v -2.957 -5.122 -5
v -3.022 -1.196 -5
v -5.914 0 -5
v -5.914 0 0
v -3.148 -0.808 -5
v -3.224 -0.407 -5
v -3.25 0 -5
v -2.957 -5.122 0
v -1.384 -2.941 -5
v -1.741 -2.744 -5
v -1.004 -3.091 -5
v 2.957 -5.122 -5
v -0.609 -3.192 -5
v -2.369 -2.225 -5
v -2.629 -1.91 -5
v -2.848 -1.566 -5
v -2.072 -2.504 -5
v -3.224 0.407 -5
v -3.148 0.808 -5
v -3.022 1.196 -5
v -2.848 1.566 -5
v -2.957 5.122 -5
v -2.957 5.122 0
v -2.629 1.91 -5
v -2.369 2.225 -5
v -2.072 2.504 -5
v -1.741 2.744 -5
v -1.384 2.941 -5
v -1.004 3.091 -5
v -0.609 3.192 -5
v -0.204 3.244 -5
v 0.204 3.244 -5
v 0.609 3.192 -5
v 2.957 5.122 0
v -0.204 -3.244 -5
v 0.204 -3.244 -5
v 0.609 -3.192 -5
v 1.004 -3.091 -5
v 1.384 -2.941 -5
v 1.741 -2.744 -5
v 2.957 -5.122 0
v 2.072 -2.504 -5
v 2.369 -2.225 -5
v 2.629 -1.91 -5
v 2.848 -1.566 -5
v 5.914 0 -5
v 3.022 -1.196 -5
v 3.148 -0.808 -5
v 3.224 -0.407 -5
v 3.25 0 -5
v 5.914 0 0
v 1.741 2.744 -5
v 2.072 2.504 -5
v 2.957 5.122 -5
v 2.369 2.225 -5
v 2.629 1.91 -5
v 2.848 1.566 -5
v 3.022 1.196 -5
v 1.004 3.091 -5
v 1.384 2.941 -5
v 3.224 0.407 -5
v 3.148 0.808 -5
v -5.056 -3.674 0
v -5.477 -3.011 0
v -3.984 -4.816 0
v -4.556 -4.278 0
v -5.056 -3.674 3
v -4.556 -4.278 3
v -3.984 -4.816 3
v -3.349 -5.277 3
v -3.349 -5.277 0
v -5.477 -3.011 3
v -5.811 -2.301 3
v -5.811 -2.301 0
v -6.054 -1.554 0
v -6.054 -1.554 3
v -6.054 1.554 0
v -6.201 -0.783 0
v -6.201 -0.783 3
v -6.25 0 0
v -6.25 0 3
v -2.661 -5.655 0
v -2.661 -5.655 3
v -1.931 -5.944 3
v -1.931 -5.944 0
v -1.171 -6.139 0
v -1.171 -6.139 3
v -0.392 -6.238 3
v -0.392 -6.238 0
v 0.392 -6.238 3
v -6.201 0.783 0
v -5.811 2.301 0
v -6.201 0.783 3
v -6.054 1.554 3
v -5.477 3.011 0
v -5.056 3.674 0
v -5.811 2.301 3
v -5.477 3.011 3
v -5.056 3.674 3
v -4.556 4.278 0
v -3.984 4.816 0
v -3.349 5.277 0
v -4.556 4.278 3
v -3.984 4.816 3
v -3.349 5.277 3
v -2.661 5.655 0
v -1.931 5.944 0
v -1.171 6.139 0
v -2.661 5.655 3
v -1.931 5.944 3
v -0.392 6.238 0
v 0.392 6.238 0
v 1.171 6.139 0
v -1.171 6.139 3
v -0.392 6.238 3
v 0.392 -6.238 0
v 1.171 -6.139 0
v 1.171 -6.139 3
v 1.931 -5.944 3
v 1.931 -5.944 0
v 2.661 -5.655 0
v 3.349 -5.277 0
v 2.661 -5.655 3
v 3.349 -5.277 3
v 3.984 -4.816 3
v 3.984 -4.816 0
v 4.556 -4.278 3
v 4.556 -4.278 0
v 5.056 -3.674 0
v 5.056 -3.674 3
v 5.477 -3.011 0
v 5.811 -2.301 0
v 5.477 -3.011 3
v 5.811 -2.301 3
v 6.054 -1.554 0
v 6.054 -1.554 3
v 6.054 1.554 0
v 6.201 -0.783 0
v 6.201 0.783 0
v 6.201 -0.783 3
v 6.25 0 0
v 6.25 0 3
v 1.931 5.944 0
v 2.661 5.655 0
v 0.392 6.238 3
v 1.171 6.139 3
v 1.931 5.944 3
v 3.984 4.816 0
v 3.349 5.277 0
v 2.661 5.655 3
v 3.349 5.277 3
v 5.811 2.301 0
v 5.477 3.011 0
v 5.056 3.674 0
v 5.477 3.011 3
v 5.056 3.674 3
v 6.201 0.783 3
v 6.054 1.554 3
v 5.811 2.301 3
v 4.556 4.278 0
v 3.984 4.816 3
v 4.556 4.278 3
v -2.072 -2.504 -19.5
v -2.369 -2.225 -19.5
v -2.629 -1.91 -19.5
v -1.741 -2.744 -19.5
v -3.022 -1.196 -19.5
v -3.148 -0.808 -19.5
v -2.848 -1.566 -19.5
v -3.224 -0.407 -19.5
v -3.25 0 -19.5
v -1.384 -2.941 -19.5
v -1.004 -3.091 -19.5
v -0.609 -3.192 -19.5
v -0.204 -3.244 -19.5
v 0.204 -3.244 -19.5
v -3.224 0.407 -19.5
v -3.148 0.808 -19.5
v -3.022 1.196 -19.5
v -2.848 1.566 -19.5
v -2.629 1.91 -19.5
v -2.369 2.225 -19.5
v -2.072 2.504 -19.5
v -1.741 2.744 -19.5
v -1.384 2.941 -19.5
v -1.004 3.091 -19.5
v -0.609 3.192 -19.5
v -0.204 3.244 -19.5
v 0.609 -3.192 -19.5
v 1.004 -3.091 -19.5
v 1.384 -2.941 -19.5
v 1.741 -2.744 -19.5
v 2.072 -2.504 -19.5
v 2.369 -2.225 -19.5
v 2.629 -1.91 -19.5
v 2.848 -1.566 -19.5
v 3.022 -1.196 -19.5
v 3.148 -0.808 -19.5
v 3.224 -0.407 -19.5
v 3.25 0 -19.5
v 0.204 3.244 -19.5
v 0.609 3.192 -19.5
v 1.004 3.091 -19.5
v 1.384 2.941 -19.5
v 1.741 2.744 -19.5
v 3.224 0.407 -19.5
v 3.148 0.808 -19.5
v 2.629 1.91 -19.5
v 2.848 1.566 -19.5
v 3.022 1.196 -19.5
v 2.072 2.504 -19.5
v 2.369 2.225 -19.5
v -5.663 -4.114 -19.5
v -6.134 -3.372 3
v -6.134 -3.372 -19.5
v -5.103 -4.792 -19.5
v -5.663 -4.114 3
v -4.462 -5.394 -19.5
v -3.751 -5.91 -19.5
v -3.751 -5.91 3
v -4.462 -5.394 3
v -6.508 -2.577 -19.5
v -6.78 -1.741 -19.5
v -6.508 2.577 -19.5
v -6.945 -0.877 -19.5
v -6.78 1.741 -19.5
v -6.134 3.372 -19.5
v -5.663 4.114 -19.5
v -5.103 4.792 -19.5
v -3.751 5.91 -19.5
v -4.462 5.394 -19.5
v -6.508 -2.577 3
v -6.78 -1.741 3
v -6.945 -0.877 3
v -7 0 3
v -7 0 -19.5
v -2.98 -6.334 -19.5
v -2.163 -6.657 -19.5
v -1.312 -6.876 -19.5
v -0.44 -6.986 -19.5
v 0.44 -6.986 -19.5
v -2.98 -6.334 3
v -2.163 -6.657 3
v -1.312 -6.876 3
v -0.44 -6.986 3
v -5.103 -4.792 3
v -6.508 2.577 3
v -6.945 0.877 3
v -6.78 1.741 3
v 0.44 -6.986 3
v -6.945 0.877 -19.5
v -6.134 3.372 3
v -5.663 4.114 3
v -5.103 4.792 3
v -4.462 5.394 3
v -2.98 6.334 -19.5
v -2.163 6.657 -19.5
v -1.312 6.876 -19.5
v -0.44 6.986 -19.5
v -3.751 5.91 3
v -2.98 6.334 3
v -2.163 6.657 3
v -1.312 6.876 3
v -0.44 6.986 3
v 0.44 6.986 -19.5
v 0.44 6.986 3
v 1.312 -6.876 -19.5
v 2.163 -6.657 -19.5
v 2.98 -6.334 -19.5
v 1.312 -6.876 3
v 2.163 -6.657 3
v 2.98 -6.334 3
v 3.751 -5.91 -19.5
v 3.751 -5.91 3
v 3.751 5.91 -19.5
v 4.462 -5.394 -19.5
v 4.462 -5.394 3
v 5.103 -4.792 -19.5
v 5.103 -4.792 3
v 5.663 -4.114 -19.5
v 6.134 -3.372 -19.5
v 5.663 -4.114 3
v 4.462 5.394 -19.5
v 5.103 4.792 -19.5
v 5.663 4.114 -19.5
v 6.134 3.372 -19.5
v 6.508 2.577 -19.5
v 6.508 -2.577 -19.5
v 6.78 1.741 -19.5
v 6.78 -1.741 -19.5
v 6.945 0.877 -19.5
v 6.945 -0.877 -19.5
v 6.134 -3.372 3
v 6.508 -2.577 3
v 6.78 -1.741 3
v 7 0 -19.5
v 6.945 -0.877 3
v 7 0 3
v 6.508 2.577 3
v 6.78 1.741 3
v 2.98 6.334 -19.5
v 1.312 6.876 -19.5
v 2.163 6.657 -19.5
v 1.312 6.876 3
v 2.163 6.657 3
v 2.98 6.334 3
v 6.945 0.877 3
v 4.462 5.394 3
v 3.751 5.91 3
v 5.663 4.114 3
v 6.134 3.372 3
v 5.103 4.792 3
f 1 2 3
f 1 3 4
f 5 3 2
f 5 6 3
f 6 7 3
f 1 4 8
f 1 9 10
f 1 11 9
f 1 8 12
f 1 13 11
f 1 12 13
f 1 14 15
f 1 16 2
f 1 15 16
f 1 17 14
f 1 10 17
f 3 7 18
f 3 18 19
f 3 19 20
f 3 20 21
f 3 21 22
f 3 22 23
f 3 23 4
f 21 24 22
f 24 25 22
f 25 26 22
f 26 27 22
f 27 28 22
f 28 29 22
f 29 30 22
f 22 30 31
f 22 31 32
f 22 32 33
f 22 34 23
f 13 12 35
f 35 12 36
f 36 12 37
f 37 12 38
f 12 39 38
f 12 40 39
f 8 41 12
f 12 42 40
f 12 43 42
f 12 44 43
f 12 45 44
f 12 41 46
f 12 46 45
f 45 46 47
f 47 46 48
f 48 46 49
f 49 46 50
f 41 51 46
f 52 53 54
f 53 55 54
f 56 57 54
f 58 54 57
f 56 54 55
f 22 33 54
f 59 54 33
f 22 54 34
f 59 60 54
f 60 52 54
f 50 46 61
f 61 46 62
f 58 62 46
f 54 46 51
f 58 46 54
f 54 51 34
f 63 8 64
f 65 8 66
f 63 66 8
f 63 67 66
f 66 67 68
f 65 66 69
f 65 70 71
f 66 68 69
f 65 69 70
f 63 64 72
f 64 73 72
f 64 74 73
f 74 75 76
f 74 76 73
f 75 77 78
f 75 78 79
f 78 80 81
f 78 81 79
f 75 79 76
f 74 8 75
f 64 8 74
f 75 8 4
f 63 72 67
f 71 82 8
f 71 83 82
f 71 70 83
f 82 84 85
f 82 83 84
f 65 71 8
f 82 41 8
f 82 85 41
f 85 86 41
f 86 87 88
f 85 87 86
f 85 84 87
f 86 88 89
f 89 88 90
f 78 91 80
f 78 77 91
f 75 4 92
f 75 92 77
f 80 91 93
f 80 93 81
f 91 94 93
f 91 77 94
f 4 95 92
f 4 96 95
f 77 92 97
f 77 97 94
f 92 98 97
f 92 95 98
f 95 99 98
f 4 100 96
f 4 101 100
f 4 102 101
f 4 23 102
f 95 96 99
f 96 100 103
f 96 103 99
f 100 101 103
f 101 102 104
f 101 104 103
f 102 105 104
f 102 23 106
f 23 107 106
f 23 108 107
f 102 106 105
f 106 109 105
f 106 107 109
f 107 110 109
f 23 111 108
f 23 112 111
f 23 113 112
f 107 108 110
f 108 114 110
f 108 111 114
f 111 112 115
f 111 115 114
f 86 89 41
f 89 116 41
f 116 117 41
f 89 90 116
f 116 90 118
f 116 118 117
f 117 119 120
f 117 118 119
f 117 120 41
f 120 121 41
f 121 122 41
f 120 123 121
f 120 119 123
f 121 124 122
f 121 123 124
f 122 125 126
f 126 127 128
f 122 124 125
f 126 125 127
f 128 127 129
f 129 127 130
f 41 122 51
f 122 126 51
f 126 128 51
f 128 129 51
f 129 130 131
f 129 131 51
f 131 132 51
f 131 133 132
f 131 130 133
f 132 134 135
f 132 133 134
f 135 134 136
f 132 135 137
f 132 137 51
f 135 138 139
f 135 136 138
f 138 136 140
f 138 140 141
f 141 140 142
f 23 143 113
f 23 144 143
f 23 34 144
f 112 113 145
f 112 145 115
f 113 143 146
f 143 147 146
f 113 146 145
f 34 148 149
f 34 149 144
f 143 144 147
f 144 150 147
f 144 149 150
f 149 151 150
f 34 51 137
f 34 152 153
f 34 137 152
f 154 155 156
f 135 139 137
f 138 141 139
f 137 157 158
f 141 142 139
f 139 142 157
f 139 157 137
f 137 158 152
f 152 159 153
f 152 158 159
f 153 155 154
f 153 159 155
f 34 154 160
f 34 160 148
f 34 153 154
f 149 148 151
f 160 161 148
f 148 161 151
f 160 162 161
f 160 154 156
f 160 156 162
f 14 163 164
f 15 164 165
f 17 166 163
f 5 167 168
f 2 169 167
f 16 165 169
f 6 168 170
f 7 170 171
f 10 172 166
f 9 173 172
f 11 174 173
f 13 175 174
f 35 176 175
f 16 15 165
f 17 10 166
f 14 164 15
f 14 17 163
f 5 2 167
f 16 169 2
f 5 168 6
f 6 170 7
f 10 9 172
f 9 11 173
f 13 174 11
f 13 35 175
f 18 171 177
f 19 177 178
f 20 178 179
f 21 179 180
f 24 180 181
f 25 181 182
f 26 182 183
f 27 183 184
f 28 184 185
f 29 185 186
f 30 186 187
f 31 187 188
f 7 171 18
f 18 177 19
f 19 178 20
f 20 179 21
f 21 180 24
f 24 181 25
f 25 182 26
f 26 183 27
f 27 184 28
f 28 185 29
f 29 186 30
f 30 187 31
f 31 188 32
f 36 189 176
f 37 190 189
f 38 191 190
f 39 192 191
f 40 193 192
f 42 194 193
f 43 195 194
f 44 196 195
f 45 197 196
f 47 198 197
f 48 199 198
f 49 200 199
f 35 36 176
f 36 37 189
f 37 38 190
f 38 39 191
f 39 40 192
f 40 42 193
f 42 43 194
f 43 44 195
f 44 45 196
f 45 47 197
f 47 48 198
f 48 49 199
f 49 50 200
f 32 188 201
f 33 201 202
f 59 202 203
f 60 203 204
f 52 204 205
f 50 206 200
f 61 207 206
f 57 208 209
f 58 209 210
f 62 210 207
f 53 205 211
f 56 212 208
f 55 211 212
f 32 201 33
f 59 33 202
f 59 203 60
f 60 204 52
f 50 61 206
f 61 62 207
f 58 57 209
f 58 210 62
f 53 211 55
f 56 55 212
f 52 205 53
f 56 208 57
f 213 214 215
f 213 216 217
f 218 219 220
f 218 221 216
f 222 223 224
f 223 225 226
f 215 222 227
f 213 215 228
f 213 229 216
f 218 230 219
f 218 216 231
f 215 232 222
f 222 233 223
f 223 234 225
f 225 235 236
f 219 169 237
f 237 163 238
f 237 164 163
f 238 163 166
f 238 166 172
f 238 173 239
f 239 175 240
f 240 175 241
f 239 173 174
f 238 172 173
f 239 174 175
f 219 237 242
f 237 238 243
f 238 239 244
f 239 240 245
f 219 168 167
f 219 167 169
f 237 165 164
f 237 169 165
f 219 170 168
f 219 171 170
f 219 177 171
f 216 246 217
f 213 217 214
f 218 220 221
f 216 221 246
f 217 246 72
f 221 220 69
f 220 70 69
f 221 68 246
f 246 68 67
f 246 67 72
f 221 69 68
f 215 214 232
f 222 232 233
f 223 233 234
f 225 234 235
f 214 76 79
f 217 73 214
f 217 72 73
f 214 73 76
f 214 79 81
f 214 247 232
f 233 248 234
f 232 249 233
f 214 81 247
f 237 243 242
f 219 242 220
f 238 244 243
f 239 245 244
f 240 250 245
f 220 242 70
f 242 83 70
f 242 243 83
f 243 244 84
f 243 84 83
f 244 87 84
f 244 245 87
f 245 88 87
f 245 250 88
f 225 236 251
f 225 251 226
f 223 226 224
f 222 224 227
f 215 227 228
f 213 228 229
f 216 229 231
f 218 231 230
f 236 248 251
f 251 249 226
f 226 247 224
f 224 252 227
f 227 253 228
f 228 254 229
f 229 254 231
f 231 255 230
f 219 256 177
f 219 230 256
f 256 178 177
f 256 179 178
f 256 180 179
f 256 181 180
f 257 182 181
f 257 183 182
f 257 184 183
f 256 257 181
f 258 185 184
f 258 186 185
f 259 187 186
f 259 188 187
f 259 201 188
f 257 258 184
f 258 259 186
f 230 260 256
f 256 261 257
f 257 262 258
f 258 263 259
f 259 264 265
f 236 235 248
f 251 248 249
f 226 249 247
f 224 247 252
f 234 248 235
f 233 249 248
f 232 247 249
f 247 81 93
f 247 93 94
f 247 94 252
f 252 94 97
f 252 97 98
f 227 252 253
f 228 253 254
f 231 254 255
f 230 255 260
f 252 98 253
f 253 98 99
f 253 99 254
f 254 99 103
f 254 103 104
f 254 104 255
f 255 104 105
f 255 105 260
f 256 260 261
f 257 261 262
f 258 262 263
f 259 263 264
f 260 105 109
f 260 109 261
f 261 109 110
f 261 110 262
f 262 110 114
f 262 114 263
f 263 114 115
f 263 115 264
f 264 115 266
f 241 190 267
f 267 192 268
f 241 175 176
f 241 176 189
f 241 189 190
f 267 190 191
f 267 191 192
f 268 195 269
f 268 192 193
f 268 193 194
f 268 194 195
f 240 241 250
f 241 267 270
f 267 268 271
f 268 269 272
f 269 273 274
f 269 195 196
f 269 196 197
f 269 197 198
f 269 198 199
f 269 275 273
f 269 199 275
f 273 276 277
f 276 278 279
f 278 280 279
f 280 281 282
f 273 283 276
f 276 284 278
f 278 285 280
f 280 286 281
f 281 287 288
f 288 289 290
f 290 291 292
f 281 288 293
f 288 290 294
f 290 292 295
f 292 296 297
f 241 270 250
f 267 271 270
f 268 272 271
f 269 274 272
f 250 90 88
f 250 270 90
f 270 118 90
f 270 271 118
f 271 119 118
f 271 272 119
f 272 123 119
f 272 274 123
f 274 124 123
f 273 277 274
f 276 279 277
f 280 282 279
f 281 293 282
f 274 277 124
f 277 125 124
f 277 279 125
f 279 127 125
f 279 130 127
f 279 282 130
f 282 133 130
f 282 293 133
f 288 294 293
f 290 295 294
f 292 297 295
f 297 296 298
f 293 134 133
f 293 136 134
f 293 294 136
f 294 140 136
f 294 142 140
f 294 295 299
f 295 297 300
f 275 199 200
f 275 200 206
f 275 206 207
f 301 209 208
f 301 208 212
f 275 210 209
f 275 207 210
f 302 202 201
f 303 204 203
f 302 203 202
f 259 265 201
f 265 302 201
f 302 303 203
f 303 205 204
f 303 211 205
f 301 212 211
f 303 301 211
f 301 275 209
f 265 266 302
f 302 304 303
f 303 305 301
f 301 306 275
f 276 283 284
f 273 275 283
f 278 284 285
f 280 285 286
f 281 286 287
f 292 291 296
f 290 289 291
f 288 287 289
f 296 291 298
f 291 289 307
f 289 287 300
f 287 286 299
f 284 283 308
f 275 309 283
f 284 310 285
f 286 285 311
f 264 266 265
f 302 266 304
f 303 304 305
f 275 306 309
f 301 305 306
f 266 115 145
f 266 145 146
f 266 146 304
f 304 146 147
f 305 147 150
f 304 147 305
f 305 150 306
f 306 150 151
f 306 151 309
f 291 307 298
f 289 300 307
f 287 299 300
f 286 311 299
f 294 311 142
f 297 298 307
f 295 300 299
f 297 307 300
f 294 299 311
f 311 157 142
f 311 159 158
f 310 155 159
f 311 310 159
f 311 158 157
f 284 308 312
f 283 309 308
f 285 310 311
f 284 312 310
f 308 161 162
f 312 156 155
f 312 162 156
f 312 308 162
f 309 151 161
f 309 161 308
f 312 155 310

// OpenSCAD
$fn = 50;

difference() {
	union() {
		translate(v = [0, 0, -19.5]) {
			cylinder(h = 22.5, r = 7.0);
		}
	}
	union() {
		translate(v = [0, 0, 0]) {
			rotate(a = [0, 0, 0]) {
				difference() {
					union() {
						translate(v = [0, 0, -5]) {
							linear_extrude(height = 5) {
								polygon(points = [[5.914249999999999, 0.0], [2.957125, 5.1218907443321156], [-2.9571249999999982, 5.1218907443321156], [-5.914249999999999, 7.242867331857232e-16], [-2.9571250000000022, -5.121890744332115], [2.9571249999999956, -5.121890744332118]]);
							}
						}
					}
					union();
				}
			}
		}
		#cylinder(h = 3, r = 6.25);
		#translate(v = [0, 0, -100.0]) {
			cylinder(h = 200, r = 3.25);
		}
	}
}
